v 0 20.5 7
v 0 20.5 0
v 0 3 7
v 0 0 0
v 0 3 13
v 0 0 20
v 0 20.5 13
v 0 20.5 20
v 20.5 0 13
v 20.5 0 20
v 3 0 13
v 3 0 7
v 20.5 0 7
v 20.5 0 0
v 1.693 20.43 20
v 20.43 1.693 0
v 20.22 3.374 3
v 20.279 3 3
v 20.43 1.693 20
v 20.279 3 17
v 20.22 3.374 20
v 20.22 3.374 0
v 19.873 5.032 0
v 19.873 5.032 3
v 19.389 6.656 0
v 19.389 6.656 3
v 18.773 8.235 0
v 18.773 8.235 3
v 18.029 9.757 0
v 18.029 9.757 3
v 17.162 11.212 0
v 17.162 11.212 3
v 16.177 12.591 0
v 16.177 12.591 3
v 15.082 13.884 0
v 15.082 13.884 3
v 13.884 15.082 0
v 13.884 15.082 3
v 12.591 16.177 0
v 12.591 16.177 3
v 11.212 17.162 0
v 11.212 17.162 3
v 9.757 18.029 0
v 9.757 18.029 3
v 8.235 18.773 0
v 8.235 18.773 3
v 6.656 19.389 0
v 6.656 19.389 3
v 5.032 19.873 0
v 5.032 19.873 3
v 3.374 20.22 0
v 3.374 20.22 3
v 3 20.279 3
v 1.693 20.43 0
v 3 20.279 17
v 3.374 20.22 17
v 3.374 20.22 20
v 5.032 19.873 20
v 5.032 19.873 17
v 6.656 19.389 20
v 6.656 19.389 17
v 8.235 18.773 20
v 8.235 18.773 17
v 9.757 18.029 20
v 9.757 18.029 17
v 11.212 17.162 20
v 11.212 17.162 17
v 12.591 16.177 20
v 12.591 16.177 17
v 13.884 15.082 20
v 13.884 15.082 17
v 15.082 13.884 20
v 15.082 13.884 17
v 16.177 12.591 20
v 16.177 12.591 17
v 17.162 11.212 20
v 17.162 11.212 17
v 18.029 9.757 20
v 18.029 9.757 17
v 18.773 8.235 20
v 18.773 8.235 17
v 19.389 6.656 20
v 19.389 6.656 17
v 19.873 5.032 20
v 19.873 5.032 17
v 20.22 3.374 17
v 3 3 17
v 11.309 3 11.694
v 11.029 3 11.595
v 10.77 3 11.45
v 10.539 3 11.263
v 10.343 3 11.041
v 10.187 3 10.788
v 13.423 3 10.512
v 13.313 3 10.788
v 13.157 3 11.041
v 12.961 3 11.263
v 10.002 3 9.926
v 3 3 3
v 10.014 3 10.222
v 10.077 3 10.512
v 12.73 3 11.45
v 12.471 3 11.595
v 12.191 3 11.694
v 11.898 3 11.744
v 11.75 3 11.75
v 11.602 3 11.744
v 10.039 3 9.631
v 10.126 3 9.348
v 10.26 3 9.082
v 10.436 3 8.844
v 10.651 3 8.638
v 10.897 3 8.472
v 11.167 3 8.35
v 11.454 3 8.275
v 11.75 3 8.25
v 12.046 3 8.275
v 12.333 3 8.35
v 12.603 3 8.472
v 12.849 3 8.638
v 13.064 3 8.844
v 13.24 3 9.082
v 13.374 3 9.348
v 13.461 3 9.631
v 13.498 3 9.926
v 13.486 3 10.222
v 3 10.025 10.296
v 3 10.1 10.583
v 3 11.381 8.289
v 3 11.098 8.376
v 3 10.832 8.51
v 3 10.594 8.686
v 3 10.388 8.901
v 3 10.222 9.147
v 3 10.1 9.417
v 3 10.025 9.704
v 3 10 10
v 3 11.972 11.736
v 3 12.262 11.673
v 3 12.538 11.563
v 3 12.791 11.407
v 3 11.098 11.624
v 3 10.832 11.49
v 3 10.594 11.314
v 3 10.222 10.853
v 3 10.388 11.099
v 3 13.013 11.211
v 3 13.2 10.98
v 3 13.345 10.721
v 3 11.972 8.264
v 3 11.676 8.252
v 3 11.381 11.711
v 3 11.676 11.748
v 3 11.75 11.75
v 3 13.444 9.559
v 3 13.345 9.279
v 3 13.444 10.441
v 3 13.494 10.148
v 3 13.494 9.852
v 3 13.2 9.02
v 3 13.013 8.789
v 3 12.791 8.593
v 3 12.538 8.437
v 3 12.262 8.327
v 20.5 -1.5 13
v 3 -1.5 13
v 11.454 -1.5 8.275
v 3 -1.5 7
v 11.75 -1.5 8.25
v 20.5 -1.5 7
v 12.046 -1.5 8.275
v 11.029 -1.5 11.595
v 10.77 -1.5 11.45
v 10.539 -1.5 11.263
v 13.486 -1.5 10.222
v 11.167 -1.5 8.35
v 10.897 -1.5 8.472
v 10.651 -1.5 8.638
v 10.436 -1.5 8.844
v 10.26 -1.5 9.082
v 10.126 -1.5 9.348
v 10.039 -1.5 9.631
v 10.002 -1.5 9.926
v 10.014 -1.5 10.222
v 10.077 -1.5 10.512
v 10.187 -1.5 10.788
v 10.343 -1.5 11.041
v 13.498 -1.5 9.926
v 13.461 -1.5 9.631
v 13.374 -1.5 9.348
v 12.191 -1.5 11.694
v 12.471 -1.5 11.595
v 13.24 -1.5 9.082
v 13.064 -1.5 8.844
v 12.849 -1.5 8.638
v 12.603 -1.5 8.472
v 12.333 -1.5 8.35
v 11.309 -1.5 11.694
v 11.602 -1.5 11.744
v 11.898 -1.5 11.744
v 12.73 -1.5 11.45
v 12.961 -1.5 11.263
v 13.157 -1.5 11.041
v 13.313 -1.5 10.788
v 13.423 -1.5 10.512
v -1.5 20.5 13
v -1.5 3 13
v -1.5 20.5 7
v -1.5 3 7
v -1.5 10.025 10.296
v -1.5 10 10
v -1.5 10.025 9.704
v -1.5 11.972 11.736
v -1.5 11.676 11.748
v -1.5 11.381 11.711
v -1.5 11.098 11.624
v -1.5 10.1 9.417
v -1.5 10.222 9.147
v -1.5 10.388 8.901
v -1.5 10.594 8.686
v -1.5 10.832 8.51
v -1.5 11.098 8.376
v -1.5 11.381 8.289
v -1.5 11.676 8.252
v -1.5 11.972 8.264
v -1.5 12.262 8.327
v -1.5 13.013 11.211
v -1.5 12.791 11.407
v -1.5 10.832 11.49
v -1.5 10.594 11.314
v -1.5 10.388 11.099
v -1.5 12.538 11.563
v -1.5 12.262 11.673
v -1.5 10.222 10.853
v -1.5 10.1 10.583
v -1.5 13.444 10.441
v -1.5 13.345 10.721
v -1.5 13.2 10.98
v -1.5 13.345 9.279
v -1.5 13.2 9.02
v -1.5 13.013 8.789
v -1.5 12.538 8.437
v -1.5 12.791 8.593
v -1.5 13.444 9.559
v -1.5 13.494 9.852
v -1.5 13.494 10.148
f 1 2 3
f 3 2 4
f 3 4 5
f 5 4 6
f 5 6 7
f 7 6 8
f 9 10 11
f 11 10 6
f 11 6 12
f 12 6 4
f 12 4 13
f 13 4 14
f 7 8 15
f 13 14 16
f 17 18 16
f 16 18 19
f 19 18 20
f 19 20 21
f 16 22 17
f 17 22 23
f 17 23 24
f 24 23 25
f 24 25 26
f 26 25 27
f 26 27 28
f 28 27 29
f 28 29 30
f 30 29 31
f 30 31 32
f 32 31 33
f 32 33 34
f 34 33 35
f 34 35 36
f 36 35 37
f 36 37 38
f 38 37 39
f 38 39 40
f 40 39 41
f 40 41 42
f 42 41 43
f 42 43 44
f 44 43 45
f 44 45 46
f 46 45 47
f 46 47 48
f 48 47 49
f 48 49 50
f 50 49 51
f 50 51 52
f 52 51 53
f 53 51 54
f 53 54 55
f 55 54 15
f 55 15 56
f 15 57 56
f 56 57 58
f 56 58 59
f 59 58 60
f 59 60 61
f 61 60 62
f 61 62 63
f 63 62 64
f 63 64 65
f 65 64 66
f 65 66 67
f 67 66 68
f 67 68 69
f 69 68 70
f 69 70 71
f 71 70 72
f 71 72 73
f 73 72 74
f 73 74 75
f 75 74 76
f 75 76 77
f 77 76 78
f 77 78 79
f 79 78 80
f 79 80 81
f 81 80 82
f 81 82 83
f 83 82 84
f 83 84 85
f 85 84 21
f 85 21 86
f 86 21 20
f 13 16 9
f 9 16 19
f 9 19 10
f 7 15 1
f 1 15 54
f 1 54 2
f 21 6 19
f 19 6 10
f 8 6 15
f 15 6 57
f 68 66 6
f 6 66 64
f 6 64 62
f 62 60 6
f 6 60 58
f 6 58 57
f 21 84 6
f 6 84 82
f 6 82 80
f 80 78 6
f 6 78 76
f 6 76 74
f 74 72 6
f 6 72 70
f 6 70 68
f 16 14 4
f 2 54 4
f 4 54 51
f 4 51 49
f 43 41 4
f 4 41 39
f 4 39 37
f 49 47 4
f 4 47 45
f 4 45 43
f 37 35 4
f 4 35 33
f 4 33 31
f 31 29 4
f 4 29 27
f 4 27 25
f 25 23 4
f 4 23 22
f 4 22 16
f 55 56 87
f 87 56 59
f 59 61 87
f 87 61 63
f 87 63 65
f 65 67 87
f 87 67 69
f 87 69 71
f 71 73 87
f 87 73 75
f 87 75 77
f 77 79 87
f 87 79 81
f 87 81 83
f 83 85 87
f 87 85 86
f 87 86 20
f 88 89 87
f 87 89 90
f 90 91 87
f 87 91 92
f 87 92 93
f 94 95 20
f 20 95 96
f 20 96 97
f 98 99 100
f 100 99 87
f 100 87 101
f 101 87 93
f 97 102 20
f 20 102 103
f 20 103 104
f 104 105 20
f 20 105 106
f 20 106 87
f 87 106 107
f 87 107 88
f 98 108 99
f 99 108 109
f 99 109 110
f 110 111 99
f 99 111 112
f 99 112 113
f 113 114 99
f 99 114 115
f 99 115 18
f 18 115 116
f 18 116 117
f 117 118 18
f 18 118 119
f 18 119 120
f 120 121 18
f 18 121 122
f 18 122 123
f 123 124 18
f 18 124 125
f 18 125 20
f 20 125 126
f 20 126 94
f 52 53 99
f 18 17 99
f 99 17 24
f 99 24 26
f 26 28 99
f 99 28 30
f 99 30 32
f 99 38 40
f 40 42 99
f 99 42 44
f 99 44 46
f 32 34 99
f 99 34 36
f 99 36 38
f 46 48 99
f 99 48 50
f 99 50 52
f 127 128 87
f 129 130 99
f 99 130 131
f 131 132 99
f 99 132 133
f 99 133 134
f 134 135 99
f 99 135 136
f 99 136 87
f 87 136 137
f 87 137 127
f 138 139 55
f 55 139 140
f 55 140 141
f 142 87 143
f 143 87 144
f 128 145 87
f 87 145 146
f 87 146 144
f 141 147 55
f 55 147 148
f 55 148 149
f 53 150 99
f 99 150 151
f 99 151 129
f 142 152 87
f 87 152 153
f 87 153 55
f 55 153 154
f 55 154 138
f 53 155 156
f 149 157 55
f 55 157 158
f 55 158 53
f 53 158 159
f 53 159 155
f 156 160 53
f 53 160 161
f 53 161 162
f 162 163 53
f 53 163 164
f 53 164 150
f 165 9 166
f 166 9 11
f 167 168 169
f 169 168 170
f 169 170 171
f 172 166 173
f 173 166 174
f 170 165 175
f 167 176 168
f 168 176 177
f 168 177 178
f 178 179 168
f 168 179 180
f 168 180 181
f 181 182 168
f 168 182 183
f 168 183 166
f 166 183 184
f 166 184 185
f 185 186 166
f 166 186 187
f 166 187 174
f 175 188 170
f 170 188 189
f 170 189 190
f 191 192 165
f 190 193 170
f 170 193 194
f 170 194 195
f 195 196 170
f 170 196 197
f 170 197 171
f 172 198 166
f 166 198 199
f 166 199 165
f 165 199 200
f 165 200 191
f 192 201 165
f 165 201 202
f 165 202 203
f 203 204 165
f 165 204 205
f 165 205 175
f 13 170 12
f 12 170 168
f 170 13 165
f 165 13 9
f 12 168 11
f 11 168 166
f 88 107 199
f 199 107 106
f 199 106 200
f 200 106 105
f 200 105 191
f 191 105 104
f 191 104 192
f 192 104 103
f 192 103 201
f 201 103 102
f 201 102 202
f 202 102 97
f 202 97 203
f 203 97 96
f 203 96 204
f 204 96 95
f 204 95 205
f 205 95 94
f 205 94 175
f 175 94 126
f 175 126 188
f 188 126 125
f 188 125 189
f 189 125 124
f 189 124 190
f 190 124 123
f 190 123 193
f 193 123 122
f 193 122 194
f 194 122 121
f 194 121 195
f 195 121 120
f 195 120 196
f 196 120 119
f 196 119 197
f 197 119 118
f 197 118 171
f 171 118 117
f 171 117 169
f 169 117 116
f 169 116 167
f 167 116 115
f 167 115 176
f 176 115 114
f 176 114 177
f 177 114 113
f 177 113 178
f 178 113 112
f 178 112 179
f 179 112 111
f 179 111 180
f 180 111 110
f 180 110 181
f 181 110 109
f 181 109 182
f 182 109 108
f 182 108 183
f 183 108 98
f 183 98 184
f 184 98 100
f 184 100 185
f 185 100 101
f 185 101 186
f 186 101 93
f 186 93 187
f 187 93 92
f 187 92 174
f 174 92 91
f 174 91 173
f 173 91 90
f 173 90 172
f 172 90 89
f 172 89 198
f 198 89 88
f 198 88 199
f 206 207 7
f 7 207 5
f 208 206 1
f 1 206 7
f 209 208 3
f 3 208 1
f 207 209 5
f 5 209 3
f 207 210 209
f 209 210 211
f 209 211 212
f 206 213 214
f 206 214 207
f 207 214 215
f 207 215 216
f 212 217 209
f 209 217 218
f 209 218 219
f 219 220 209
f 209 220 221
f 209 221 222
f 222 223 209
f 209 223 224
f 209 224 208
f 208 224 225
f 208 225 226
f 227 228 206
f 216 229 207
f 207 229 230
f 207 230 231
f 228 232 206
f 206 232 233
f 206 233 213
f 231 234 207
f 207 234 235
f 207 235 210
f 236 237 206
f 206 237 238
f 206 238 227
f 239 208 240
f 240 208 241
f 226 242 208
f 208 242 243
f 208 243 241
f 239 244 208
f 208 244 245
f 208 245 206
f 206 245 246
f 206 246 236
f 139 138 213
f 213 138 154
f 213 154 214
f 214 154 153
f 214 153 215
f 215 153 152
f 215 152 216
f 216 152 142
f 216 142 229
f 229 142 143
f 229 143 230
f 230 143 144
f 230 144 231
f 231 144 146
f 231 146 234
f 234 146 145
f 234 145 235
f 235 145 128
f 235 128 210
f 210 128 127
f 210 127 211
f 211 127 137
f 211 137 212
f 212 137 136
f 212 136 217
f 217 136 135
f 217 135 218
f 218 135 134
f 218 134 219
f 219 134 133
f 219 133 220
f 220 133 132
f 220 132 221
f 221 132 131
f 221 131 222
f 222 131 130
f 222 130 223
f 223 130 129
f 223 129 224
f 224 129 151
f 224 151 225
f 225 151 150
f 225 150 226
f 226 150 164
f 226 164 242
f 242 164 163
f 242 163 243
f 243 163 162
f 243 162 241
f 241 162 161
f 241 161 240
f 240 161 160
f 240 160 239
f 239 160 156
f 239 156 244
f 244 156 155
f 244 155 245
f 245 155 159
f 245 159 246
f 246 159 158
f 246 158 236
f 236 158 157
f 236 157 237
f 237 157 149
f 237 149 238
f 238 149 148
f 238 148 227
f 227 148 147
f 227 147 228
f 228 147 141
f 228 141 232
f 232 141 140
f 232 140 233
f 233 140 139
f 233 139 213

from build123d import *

# Parameters (mm, degrees)
Y_KSEKLIK_EKSTR_ZYON1_DEPTH = 20
KES_EKSTR_ZYON1_START       = 3
IZIM2_W                     = 14
IZIM2_H                     = 17.5
KES_EKSTR_ZYON1_DEPTH       = 33.220732531
IZIM6_W                     = 6
IZIM6_H                     = 1.5
Y_KSEKLIK_EKSTR_ZYON3_DEPTH = 17.5
SKETCH_2_R                  = 1.75
CUT_EXTRUDE_2_DEPTH         = 5
SKETCH_3_W                  = 6
SKETCH_3_H                  = 17.5
EXTRUDE_1_DEPTH             = 1.5
SKETCH_4_R                  = 1.75
CUT_EXTRUDE_3_DEPTH         = 5


with BuildPart() as part:
    # Çizim1 → Yükseklik-Ekstrüzyon1 (new body)
    with BuildSketch(Plane.XY):
        with BuildLine():
            Line((0, 20.5), (0, 0))
            Line((0, 0), (20.5, 0))
            ThreePointArc((20.5, 0), (14.495689014, 14.495689014), (0, 20.5))
        make_face()
    extrude(amount=Y_KSEKLIK_EKSTR_ZYON1_DEPTH)

    # Çizim2 → Kes-Ekstrüzyon1 (cut, through all)
    with BuildSketch(Plane(origin=(0, 0, 0), x_dir=(0, 0, -1), z_dir=(1, 0, 0)).offset(KES_EKSTR_ZYON1_START)):
        with Locations((-10, 11.75)):
            Rectangle(IZIM2_W, IZIM2_H)
    extrude(amount=KES_EKSTR_ZYON1_DEPTH, mode=Mode.SUBTRACT)

    # Çizim6 → Yükseklik-Ekstrüzyon3 (add, through all)
    with BuildSketch(Plane(origin=(3, 0, 0), x_dir=(0, 0, -1), z_dir=(1, 0, 0))):
        with Locations((-10, -0.75)):
            Rectangle(IZIM6_W, IZIM6_H)
    extrude(amount=Y_KSEKLIK_EKSTR_ZYON3_DEPTH)

    # Эскиз2 → Вырез-Вытянуть2 (cut)
    with BuildSketch(Plane.XZ.offset(1.5)):
        with Locations(Location((11.75, 10, 0), (0, 0, 270))):
            Circle(SKETCH_2_R)
    extrude(amount=-CUT_EXTRUDE_2_DEPTH, mode=Mode.SUBTRACT)

    # Эскиз3 → Бобышка-Вытянуть1 (add)
    with BuildSketch(Plane.ZY):
        with Locations((10, 11.75)):
            Rectangle(SKETCH_3_W, SKETCH_3_H)
    extrude(amount=EXTRUDE_1_DEPTH)

    # Эскиз4 → Вырез-Вытянуть3 (cut)
    with BuildSketch(Plane.ZY.offset(1.5)):
        with Locations(Location((10, 11.75, 0), (0, 0, 270))):
            Circle(SKETCH_4_R)
    extrude(amount=-CUT_EXTRUDE_3_DEPTH, mode=Mode.SUBTRACT)


solid = part.part
